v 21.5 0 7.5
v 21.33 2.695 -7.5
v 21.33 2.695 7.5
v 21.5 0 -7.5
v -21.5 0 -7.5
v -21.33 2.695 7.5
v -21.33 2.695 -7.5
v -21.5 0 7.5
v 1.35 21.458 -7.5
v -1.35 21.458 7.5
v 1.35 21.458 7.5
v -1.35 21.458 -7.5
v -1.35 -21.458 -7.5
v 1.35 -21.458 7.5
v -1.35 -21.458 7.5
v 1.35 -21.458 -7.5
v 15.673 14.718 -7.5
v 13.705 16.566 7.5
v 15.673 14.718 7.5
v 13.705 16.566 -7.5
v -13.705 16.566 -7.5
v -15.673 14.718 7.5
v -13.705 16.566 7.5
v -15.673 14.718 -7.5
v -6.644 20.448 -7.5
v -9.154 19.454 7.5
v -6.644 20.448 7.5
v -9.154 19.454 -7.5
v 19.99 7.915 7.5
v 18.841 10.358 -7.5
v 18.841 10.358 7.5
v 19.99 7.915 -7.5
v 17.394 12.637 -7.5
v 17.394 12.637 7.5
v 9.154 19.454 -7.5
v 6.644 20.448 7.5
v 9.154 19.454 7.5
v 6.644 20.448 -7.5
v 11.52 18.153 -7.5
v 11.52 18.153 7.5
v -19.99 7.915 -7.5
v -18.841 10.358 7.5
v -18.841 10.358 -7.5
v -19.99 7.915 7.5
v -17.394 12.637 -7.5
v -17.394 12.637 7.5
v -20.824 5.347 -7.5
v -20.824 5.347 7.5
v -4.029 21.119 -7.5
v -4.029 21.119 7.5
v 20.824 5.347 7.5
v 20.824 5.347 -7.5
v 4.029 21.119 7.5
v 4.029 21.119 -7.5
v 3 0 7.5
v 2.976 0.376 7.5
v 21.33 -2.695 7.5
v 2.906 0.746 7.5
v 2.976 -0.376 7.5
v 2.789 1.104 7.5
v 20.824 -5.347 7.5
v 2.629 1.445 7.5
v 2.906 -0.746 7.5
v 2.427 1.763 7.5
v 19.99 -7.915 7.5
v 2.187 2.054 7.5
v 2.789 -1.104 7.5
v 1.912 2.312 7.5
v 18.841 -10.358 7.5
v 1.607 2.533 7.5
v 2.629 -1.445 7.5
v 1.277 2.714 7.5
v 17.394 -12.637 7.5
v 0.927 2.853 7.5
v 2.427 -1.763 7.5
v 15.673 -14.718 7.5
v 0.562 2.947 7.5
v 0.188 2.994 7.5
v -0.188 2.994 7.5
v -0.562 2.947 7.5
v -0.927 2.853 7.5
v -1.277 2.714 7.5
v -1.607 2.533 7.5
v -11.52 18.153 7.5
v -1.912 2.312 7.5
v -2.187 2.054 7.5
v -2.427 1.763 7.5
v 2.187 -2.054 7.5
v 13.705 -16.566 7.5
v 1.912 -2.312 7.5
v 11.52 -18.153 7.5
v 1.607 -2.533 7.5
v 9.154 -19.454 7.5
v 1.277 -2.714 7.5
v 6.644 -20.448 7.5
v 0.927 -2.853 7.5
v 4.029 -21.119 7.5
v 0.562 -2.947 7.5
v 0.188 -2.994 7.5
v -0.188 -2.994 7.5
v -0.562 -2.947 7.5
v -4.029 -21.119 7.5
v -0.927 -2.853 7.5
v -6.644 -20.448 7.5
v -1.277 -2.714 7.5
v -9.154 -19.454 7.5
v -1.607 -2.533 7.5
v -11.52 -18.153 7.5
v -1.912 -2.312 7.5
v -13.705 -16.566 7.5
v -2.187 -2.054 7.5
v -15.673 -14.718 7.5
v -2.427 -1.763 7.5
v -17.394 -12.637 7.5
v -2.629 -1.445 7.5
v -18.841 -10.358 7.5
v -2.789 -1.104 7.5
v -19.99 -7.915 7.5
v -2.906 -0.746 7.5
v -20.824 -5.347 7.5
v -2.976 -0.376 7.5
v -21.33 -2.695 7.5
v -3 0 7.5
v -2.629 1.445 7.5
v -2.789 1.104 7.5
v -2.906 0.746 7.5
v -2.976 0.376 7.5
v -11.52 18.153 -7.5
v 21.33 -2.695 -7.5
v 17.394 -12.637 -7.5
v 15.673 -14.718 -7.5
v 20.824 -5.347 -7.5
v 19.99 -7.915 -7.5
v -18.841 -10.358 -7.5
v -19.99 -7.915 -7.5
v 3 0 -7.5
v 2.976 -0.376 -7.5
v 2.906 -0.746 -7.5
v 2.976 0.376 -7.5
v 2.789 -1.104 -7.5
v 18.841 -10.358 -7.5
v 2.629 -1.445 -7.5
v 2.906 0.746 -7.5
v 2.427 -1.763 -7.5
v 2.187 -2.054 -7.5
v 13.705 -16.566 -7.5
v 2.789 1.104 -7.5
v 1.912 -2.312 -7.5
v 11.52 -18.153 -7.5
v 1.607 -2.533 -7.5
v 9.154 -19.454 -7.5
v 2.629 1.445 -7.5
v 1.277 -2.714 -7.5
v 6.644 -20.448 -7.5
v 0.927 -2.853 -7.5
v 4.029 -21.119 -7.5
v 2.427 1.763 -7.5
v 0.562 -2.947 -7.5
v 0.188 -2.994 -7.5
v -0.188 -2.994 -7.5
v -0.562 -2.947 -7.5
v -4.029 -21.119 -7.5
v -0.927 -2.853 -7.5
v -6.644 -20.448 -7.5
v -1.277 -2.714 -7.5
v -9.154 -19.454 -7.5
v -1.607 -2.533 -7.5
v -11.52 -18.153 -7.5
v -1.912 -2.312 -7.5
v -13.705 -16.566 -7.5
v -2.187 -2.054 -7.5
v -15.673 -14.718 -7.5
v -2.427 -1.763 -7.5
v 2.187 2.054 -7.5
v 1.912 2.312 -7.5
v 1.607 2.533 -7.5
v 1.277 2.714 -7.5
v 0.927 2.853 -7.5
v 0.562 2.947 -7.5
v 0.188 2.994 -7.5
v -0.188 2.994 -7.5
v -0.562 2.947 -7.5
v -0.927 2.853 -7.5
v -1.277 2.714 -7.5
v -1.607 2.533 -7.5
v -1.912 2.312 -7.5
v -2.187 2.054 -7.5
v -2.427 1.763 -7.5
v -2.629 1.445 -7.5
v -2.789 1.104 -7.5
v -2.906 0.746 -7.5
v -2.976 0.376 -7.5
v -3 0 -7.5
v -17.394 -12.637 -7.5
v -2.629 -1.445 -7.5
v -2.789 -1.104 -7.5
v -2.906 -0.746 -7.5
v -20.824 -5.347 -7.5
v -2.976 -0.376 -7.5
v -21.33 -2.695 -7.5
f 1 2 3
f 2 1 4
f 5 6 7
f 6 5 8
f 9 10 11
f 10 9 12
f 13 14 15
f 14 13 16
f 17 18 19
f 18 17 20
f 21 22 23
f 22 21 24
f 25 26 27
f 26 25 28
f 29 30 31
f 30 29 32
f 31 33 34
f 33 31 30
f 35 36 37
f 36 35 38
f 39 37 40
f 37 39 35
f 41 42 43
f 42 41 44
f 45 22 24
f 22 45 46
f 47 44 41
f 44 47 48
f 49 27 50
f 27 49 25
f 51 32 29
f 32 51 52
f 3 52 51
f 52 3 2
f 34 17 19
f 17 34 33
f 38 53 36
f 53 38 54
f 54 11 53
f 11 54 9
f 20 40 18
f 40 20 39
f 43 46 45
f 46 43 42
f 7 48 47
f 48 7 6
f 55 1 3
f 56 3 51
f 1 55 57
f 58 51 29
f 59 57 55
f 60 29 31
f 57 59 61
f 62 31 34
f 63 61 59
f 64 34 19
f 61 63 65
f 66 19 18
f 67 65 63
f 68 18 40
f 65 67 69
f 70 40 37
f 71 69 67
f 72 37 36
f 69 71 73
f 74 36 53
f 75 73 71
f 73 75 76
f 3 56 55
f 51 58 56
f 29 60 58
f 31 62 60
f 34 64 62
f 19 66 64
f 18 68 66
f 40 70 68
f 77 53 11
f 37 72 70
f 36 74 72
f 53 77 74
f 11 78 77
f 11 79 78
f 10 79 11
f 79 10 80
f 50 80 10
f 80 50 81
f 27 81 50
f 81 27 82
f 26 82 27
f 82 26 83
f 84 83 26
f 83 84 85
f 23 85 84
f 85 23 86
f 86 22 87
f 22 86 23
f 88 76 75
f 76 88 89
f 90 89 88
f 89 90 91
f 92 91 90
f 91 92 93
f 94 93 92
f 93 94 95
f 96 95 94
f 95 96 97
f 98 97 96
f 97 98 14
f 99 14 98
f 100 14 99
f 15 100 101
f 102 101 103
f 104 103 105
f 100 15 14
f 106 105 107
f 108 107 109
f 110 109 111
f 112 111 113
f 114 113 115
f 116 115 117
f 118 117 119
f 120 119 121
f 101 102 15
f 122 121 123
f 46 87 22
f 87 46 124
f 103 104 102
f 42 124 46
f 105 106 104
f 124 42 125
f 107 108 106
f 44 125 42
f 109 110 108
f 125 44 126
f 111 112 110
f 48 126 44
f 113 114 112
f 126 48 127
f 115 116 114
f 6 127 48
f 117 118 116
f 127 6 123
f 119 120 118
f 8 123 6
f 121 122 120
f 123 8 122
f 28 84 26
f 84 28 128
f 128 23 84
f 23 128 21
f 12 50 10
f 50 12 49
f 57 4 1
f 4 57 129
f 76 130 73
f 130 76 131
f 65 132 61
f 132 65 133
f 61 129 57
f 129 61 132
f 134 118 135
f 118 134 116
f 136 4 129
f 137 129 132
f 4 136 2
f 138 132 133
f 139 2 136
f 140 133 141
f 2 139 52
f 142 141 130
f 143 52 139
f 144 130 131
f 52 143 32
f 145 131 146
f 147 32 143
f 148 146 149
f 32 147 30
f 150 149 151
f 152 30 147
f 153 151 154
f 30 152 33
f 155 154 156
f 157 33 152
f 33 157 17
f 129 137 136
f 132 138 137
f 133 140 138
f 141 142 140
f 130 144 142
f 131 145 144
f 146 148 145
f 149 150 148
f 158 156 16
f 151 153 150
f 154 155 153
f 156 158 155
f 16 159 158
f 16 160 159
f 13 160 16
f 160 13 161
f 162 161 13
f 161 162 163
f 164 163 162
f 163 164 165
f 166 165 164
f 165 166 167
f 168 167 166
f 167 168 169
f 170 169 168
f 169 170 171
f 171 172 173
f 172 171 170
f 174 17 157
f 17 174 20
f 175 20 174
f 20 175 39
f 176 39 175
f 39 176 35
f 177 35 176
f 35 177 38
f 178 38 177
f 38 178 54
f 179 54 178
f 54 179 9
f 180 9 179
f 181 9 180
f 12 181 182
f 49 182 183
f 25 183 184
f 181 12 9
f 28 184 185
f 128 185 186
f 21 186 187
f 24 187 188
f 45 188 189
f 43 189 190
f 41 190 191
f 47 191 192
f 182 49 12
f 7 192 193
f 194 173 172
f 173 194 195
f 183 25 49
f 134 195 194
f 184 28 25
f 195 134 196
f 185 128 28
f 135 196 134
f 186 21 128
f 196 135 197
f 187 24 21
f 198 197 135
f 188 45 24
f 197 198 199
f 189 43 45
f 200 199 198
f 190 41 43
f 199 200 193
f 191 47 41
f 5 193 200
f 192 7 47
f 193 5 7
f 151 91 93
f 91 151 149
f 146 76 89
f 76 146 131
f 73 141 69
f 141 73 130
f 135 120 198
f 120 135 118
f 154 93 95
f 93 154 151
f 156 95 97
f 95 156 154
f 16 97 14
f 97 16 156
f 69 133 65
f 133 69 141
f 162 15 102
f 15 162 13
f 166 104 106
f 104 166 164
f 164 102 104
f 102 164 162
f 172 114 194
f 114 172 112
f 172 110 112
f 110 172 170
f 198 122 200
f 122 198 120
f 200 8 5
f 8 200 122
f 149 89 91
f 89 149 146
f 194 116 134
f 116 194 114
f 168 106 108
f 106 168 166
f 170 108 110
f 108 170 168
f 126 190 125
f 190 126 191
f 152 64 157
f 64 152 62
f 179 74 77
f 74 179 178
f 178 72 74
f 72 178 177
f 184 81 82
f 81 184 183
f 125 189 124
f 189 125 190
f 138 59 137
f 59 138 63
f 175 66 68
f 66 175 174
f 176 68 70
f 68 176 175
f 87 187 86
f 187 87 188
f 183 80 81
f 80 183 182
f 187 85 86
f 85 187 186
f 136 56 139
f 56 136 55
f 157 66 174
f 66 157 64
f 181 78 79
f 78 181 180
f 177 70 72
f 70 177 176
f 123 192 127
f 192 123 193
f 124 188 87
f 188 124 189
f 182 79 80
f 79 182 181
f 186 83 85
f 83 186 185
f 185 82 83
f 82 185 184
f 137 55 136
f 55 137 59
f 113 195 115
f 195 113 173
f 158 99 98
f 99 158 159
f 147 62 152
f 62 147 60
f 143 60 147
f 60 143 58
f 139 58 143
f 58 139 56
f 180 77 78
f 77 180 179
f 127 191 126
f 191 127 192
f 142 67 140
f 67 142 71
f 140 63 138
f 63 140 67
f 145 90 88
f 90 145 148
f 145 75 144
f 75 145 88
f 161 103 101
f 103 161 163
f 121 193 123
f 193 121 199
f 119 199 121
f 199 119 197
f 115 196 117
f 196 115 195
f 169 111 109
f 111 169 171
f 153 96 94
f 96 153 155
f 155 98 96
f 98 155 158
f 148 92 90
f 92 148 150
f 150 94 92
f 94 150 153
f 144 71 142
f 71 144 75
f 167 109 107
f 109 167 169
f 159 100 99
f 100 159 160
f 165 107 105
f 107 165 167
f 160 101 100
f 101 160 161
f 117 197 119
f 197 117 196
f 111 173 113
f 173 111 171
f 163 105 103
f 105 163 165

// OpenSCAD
$fn = 50;


difference() {
	union() {
		translate(v = [0, 0, -7.5000000000]) {
			cylinder(h = 15, r = 21.5000000000);
		}
	}
	union() {
		translate(v = [0, 0, -100.0000000000]) {
			cylinder(h = 200, r = 3);
		}
	}
}
